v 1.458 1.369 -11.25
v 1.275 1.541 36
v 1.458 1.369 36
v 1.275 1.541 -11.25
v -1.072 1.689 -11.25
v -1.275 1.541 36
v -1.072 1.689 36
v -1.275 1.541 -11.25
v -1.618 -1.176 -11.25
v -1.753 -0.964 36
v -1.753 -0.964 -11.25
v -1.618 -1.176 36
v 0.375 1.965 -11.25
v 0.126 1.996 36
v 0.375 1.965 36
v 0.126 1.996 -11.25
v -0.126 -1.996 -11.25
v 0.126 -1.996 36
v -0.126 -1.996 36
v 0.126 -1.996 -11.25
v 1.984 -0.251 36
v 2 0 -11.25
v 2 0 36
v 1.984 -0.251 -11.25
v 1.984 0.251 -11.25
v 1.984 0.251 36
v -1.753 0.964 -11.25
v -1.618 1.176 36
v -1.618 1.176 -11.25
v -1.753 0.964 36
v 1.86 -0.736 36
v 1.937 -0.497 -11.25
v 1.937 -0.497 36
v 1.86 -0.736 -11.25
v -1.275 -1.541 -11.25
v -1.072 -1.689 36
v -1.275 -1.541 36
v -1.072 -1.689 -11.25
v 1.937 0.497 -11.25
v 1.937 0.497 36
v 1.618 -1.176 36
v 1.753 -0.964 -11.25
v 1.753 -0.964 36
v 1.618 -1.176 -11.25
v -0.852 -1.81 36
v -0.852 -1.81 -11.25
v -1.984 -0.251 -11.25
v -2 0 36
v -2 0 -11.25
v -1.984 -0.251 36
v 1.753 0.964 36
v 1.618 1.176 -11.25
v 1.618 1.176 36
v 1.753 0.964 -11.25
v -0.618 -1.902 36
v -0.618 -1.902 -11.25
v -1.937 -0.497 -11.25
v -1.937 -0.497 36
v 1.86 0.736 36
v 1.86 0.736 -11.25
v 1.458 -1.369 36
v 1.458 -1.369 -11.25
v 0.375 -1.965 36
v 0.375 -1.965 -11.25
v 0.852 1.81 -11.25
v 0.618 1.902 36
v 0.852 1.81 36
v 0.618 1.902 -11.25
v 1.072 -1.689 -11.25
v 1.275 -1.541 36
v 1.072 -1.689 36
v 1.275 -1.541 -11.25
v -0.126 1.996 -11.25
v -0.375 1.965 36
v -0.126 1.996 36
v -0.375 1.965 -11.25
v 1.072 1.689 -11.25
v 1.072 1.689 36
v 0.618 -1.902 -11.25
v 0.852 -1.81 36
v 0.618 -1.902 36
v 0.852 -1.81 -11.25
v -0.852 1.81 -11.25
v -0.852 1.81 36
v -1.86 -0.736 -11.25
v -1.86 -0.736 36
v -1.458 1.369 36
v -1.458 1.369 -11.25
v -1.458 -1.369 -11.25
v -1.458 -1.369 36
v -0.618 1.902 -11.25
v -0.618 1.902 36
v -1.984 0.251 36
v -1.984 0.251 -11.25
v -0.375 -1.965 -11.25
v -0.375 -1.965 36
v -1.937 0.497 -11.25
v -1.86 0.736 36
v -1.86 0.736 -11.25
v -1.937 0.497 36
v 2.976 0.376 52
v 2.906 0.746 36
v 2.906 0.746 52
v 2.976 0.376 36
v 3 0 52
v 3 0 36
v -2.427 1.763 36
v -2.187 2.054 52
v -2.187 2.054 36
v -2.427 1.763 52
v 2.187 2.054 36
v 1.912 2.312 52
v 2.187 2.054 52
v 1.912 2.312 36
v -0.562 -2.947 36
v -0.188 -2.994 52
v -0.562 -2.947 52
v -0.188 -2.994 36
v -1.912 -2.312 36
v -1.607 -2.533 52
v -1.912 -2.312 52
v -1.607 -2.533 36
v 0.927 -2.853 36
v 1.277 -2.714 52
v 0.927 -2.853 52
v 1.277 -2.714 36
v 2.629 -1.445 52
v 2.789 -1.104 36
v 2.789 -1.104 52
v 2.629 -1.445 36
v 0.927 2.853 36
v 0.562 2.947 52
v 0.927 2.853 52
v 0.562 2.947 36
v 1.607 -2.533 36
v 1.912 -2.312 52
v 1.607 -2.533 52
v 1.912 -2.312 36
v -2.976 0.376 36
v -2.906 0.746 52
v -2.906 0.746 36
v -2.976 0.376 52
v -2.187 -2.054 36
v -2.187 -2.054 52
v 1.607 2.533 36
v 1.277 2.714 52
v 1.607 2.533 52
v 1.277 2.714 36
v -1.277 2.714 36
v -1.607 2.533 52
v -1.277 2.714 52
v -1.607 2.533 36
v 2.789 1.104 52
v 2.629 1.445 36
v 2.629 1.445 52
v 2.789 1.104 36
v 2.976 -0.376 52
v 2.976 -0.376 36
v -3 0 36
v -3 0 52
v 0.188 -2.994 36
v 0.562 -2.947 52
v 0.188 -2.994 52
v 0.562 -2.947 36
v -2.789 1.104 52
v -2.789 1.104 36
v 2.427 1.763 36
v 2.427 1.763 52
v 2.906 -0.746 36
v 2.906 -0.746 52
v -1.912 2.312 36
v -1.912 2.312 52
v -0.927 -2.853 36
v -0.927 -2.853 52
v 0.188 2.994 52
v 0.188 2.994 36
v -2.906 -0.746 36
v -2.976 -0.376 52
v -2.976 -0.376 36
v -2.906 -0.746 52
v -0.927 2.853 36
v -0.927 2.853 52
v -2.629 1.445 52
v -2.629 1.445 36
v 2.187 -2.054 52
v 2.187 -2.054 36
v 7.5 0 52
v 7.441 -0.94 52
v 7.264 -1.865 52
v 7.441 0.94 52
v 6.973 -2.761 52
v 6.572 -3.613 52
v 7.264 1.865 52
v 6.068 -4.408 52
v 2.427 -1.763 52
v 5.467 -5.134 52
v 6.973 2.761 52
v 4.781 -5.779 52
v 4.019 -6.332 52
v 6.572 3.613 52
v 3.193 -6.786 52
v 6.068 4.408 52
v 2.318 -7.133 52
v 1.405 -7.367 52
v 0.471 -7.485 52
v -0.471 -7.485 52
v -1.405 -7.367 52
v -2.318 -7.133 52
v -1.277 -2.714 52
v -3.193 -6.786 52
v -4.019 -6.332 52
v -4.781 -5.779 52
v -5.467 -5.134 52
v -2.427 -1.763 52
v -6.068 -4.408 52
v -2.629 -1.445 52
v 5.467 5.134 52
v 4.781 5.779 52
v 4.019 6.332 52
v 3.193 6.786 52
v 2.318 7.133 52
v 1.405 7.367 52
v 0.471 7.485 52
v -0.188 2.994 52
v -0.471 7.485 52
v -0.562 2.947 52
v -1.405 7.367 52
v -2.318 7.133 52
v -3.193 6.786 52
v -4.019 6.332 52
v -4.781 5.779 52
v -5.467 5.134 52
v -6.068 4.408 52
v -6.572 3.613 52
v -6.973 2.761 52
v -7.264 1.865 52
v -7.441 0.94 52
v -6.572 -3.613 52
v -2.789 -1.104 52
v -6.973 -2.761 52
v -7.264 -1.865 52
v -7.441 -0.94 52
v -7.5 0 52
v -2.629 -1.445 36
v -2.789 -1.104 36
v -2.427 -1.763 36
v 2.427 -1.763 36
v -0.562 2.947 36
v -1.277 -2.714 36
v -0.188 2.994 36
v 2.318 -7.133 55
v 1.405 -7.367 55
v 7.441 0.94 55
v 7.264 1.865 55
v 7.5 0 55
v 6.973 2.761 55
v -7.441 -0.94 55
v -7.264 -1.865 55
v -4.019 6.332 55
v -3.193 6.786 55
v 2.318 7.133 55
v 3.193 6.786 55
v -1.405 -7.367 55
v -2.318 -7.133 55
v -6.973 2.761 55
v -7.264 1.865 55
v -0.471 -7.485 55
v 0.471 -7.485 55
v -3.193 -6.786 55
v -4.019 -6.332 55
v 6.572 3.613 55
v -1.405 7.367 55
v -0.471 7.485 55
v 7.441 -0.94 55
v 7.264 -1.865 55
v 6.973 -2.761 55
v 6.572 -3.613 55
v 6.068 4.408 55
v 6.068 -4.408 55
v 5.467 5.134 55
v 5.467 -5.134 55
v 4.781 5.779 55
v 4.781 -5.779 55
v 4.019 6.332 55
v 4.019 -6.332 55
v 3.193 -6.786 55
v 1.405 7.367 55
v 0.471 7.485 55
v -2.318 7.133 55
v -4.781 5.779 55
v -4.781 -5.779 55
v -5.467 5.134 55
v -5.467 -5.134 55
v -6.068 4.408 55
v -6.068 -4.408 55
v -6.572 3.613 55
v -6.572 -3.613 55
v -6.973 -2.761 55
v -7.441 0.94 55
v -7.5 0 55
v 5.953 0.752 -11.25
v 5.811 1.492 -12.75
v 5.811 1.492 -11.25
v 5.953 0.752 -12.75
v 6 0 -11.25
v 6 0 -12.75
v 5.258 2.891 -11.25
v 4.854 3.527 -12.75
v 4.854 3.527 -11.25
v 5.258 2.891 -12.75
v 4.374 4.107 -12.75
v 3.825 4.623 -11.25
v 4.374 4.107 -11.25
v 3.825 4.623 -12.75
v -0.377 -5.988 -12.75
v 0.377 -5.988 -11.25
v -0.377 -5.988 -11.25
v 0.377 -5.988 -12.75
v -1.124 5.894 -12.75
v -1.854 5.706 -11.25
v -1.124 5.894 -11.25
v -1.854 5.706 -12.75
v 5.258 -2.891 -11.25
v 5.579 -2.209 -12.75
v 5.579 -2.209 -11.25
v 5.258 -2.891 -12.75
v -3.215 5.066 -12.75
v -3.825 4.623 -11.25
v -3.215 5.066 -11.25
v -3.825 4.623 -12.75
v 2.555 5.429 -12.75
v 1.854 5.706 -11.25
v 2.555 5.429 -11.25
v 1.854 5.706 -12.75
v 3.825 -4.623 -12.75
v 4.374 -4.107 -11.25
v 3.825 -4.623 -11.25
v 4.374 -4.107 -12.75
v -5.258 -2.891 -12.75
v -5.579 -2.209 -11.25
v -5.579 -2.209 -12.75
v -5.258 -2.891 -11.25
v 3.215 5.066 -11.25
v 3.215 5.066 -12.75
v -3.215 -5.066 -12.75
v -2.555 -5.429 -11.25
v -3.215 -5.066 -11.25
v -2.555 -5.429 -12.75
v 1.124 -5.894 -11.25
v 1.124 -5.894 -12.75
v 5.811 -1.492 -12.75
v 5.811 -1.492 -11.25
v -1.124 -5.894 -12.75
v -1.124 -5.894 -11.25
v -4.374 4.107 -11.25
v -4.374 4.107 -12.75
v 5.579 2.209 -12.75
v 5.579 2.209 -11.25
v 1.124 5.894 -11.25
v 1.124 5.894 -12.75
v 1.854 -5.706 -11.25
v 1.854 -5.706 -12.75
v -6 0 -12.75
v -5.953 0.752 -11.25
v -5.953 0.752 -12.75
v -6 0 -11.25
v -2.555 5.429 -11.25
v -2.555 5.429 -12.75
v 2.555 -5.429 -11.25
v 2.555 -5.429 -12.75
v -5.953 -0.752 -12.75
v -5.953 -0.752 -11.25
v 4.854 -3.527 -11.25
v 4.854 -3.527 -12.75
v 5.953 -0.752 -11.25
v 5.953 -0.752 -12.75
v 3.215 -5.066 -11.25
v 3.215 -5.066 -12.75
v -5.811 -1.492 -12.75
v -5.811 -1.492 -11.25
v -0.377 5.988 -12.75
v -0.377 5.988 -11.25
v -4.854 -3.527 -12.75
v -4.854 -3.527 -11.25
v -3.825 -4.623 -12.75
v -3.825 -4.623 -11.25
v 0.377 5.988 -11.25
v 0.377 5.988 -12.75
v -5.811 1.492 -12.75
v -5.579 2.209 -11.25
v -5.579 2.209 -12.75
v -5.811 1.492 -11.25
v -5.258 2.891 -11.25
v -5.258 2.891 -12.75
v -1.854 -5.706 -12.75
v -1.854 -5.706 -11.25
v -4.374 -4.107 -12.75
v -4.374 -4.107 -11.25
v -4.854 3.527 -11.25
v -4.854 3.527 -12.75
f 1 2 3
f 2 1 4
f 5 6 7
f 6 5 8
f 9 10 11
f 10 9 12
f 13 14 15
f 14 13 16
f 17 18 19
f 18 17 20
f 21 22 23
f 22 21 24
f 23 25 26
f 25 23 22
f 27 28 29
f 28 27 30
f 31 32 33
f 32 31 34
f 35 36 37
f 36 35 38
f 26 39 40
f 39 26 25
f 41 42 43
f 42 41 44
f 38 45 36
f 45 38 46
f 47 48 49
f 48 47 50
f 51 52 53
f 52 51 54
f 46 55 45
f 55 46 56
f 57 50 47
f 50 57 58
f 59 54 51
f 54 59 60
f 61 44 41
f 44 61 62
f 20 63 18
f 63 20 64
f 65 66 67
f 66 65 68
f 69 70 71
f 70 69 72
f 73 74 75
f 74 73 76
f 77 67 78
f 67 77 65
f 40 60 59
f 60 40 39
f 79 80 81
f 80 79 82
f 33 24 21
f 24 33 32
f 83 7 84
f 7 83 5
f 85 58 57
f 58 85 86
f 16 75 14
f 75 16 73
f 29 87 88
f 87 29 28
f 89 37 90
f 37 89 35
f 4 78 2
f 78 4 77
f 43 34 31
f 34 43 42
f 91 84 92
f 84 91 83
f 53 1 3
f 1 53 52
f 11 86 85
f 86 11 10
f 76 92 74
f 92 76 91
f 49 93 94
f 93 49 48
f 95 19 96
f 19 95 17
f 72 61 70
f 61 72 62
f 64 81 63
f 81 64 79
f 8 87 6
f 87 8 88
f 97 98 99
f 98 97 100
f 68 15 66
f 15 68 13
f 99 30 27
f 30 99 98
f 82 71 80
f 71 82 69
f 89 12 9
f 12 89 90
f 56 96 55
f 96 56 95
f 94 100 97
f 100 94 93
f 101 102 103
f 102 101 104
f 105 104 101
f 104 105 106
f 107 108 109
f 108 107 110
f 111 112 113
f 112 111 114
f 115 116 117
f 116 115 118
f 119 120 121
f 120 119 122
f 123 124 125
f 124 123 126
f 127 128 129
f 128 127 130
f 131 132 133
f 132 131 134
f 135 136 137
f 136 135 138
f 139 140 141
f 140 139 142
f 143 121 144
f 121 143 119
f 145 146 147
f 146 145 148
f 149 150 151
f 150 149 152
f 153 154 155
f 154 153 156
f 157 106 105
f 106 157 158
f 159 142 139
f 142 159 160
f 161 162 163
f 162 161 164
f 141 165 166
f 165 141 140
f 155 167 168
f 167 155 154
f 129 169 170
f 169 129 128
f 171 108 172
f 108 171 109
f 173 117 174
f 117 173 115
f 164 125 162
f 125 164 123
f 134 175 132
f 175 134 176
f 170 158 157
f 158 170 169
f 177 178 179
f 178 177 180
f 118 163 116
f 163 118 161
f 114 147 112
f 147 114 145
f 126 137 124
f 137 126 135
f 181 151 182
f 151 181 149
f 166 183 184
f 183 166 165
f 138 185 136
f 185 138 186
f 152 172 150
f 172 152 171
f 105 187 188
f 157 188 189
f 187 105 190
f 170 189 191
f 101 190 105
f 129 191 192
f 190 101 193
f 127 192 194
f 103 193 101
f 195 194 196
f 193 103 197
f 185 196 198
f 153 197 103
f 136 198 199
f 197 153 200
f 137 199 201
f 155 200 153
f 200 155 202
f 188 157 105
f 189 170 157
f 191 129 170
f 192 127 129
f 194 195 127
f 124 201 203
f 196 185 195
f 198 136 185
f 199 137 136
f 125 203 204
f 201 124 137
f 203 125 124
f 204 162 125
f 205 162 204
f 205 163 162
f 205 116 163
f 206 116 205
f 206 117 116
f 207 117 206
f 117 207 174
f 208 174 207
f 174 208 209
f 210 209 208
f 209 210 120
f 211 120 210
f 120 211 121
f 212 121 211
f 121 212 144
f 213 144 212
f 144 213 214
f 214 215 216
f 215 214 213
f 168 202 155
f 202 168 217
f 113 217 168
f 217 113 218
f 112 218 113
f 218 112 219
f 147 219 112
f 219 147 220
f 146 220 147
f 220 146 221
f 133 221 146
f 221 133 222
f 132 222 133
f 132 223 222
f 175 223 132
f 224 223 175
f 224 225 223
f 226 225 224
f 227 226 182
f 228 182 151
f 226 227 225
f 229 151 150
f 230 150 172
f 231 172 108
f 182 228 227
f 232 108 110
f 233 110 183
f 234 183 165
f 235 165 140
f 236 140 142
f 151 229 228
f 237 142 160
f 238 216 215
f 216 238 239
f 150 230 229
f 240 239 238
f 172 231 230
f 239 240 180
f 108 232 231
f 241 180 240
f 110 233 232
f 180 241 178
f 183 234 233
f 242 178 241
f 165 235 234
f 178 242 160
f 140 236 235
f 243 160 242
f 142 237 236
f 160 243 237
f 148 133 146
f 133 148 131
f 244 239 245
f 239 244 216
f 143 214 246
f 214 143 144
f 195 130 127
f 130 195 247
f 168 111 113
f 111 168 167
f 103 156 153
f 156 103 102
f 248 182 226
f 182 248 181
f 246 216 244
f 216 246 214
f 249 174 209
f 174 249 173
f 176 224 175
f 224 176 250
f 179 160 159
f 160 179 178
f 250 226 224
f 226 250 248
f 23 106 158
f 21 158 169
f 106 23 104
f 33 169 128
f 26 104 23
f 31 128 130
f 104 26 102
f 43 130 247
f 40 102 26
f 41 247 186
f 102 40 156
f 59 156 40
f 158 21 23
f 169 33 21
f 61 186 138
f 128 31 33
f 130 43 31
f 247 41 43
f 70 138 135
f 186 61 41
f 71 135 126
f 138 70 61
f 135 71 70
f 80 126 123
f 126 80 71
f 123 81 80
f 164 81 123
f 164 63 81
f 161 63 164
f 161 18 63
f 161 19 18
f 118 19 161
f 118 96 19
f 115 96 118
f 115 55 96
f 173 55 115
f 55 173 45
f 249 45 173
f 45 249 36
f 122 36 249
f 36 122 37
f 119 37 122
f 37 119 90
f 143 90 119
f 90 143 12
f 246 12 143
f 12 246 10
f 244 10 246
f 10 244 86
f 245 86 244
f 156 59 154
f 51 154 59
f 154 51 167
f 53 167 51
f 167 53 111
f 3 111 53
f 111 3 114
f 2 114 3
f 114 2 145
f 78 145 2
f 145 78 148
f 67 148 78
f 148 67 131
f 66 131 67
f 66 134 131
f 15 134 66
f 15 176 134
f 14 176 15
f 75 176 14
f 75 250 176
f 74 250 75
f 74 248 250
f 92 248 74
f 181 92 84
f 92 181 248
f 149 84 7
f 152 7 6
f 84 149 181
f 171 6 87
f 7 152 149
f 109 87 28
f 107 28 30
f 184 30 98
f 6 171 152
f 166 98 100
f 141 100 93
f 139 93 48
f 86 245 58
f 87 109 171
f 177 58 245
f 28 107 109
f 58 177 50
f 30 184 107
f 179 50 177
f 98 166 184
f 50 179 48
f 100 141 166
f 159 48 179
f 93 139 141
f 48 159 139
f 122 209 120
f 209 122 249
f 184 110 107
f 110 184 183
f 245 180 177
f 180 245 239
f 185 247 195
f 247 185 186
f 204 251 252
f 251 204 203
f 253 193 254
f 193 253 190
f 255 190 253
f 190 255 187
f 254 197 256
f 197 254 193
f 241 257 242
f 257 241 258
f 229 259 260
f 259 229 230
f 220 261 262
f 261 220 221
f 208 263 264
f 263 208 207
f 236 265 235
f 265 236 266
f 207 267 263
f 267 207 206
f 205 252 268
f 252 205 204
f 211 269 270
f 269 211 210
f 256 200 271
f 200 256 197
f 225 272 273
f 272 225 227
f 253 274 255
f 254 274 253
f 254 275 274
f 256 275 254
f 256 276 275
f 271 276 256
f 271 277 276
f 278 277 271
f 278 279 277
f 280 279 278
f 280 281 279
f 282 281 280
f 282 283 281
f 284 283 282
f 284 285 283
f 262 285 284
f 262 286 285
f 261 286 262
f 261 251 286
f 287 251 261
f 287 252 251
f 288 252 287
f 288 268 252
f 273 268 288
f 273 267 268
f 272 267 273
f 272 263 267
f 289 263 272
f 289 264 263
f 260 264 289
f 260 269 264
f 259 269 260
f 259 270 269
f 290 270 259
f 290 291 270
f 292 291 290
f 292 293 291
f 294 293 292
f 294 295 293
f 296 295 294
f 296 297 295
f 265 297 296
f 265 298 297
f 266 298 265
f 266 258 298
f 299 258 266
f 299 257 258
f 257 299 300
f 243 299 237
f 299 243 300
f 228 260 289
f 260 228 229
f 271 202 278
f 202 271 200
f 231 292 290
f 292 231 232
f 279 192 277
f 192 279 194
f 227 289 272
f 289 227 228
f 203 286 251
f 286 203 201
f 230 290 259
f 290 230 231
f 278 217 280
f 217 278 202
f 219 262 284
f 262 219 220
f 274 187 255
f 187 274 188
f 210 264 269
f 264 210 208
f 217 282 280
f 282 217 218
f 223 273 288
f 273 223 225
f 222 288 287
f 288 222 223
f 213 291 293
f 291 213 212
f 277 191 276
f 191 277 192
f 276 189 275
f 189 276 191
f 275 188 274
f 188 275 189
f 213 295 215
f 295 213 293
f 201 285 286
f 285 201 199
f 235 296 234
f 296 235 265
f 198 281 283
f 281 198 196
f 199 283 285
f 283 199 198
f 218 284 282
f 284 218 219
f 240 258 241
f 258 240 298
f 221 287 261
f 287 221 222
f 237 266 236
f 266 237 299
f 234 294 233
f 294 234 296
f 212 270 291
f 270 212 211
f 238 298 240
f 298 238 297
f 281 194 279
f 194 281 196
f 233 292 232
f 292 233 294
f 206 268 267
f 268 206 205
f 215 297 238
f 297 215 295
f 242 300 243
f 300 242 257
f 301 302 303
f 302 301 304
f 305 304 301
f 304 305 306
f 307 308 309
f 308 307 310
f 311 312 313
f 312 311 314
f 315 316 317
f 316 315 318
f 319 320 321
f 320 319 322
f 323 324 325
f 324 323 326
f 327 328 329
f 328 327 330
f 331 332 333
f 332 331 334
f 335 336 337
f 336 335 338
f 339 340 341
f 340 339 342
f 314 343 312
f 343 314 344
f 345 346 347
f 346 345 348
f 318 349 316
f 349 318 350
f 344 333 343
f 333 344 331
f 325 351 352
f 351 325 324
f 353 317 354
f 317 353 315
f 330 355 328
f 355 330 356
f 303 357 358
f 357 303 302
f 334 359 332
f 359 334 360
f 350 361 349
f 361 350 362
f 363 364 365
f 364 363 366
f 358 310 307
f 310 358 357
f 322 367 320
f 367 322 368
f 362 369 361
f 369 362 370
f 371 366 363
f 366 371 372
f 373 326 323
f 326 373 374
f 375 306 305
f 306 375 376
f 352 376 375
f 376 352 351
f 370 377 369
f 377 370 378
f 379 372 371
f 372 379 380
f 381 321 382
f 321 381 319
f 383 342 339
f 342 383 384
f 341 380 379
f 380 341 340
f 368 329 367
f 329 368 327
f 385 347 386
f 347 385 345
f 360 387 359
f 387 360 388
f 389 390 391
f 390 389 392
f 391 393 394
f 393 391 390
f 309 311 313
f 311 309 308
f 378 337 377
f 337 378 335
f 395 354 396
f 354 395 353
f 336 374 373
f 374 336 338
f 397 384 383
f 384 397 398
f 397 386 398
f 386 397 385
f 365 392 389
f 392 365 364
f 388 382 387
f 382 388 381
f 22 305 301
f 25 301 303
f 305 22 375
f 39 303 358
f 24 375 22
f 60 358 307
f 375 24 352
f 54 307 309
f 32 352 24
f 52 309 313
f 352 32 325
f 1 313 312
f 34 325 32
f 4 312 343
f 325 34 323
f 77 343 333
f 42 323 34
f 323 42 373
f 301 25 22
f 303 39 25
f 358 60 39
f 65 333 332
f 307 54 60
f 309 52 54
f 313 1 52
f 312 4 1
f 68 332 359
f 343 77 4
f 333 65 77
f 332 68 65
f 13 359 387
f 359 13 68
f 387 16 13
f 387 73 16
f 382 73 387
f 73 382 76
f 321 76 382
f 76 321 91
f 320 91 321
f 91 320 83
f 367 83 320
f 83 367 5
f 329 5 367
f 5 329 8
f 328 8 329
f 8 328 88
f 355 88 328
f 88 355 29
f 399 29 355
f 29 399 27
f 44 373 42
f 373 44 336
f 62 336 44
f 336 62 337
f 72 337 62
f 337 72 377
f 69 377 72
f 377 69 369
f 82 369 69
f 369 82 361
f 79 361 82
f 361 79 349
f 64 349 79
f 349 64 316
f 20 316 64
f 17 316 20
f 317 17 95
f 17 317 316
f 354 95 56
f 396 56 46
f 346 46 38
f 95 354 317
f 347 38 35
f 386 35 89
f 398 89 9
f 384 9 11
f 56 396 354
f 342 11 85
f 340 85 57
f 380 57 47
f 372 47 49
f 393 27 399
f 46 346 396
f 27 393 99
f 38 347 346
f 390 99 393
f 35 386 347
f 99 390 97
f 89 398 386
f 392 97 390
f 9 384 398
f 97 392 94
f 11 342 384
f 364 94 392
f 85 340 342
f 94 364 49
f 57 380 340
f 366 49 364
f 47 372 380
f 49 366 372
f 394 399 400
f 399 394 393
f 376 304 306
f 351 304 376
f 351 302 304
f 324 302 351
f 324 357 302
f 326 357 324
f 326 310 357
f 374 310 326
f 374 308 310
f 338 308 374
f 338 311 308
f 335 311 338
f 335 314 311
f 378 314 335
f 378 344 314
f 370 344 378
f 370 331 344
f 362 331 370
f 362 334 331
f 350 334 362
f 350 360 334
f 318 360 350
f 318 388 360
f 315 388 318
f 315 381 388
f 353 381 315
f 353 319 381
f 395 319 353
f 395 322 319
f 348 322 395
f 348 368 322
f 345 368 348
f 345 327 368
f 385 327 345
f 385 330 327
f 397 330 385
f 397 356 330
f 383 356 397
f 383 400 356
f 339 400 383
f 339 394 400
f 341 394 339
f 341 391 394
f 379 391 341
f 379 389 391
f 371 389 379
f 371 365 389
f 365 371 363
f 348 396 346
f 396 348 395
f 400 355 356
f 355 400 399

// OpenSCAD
// file: variables.scad
$fn = 50;
//chambres

//globol

decal = 5; //decalage global chambres
lg = 310; //longueur totale
lag = 60; //largeur totae
ep = 1.5; //epaisseur plak
etv = 19; // ecart vert touches
eth = 14; //ecrat hor touches
nb = 15; //nombre de touches

//plaque dessus

hpd = 40; //hauteur plaque dessus
dth = 8; //diametre des trous pl haut
dtb = 6; //diametre des trous pl bas

//include <plaque_dessus.scad>

//tubes 

dtige=4; //diametre tige bouton
dtub = 6; //dimatre tube 
drtub = 8; //diametre tube ressort
hrtub = 10; //hauteur ressort tube
hbtub = 14; //hauteur du bas du tube

//include <tubes.scad>

//chambre

htc=10;//hauteur chambres
epa = 2; //epaisseur ailettes
epc=3; //grosse epaisseur chmbre

long0=etv-drtub;
long00=etv-drtub-ep*2;
long000=etv+etv/2;
long1=lag/2-drtub/2-epc-epc/2;
long2=lag/2+epc/2+drtub/2;

longb = 10; //largueur basse ailette
longh = 5; //largeur haute ailette

lab = lag-longb*2;


//plaque dessus ici a cause des variables des chambres


//tigettes

epe = 6; //epaisseur escalier
escalier = 3; //ecart de hauteur des touches
htig = hpd+epe;
etouch = 3; //epaisseur touche    
diat = 15; // diametre de la touche
//coté droit



echo();
echo();
echo();
echo();
echo("***********************");
echo("long000 aka inter cloisons = ", long000);
echo("long0 fond des cloisons = ", long0);
echo("long1 base ailette centrale = ", long1);
echo("long2 base ailette grande = ", long2);




echo("*********************** ");
echo();
echo();


hypo = sqrt((longb-longh)^2 + hpd^2);
echo("hypo" ,hypo);
cosin = hpd/hypo;
echo("cos alpha",cosin);
angle = acos(cosin);
echo("angle",angle);



//reservoir d'air


htr = 8;



//plaques ltérales

hhtt=37; //hauteur première plaque

//include <plaques_laterales.scad>

//plaques internes

//plaque intermediaire ou bout de bois


hauteur = hpd-hrtub;
echo("hauteur" , hauteur);
hypopo = 1 / (cos(angle) / hauteur);
hypopopo = 1 / (cos(angle) / hpd);
echo("hypopo", hypopo);
coop = sin(angle) * hypopo;
echo("coop", coop);

//plaques laterale interne
// main file
include <variables.scad>




translate([0,0,-longb-ep-0.5])
cylinder(htig+escalier*2, d=dtige);
translate([0,0,hpd-hrtub+epe])
cylinder(hrtub+escalier*2, d=dtub);
    
translate([0,0,hpd+epe+escalier*2])
cylinder(etouch, d=diat); //touche

    
 translate([0,0,-ep/2-longb-ep-0.5])
cylinder(ep, d= drtub+4); //clapet
